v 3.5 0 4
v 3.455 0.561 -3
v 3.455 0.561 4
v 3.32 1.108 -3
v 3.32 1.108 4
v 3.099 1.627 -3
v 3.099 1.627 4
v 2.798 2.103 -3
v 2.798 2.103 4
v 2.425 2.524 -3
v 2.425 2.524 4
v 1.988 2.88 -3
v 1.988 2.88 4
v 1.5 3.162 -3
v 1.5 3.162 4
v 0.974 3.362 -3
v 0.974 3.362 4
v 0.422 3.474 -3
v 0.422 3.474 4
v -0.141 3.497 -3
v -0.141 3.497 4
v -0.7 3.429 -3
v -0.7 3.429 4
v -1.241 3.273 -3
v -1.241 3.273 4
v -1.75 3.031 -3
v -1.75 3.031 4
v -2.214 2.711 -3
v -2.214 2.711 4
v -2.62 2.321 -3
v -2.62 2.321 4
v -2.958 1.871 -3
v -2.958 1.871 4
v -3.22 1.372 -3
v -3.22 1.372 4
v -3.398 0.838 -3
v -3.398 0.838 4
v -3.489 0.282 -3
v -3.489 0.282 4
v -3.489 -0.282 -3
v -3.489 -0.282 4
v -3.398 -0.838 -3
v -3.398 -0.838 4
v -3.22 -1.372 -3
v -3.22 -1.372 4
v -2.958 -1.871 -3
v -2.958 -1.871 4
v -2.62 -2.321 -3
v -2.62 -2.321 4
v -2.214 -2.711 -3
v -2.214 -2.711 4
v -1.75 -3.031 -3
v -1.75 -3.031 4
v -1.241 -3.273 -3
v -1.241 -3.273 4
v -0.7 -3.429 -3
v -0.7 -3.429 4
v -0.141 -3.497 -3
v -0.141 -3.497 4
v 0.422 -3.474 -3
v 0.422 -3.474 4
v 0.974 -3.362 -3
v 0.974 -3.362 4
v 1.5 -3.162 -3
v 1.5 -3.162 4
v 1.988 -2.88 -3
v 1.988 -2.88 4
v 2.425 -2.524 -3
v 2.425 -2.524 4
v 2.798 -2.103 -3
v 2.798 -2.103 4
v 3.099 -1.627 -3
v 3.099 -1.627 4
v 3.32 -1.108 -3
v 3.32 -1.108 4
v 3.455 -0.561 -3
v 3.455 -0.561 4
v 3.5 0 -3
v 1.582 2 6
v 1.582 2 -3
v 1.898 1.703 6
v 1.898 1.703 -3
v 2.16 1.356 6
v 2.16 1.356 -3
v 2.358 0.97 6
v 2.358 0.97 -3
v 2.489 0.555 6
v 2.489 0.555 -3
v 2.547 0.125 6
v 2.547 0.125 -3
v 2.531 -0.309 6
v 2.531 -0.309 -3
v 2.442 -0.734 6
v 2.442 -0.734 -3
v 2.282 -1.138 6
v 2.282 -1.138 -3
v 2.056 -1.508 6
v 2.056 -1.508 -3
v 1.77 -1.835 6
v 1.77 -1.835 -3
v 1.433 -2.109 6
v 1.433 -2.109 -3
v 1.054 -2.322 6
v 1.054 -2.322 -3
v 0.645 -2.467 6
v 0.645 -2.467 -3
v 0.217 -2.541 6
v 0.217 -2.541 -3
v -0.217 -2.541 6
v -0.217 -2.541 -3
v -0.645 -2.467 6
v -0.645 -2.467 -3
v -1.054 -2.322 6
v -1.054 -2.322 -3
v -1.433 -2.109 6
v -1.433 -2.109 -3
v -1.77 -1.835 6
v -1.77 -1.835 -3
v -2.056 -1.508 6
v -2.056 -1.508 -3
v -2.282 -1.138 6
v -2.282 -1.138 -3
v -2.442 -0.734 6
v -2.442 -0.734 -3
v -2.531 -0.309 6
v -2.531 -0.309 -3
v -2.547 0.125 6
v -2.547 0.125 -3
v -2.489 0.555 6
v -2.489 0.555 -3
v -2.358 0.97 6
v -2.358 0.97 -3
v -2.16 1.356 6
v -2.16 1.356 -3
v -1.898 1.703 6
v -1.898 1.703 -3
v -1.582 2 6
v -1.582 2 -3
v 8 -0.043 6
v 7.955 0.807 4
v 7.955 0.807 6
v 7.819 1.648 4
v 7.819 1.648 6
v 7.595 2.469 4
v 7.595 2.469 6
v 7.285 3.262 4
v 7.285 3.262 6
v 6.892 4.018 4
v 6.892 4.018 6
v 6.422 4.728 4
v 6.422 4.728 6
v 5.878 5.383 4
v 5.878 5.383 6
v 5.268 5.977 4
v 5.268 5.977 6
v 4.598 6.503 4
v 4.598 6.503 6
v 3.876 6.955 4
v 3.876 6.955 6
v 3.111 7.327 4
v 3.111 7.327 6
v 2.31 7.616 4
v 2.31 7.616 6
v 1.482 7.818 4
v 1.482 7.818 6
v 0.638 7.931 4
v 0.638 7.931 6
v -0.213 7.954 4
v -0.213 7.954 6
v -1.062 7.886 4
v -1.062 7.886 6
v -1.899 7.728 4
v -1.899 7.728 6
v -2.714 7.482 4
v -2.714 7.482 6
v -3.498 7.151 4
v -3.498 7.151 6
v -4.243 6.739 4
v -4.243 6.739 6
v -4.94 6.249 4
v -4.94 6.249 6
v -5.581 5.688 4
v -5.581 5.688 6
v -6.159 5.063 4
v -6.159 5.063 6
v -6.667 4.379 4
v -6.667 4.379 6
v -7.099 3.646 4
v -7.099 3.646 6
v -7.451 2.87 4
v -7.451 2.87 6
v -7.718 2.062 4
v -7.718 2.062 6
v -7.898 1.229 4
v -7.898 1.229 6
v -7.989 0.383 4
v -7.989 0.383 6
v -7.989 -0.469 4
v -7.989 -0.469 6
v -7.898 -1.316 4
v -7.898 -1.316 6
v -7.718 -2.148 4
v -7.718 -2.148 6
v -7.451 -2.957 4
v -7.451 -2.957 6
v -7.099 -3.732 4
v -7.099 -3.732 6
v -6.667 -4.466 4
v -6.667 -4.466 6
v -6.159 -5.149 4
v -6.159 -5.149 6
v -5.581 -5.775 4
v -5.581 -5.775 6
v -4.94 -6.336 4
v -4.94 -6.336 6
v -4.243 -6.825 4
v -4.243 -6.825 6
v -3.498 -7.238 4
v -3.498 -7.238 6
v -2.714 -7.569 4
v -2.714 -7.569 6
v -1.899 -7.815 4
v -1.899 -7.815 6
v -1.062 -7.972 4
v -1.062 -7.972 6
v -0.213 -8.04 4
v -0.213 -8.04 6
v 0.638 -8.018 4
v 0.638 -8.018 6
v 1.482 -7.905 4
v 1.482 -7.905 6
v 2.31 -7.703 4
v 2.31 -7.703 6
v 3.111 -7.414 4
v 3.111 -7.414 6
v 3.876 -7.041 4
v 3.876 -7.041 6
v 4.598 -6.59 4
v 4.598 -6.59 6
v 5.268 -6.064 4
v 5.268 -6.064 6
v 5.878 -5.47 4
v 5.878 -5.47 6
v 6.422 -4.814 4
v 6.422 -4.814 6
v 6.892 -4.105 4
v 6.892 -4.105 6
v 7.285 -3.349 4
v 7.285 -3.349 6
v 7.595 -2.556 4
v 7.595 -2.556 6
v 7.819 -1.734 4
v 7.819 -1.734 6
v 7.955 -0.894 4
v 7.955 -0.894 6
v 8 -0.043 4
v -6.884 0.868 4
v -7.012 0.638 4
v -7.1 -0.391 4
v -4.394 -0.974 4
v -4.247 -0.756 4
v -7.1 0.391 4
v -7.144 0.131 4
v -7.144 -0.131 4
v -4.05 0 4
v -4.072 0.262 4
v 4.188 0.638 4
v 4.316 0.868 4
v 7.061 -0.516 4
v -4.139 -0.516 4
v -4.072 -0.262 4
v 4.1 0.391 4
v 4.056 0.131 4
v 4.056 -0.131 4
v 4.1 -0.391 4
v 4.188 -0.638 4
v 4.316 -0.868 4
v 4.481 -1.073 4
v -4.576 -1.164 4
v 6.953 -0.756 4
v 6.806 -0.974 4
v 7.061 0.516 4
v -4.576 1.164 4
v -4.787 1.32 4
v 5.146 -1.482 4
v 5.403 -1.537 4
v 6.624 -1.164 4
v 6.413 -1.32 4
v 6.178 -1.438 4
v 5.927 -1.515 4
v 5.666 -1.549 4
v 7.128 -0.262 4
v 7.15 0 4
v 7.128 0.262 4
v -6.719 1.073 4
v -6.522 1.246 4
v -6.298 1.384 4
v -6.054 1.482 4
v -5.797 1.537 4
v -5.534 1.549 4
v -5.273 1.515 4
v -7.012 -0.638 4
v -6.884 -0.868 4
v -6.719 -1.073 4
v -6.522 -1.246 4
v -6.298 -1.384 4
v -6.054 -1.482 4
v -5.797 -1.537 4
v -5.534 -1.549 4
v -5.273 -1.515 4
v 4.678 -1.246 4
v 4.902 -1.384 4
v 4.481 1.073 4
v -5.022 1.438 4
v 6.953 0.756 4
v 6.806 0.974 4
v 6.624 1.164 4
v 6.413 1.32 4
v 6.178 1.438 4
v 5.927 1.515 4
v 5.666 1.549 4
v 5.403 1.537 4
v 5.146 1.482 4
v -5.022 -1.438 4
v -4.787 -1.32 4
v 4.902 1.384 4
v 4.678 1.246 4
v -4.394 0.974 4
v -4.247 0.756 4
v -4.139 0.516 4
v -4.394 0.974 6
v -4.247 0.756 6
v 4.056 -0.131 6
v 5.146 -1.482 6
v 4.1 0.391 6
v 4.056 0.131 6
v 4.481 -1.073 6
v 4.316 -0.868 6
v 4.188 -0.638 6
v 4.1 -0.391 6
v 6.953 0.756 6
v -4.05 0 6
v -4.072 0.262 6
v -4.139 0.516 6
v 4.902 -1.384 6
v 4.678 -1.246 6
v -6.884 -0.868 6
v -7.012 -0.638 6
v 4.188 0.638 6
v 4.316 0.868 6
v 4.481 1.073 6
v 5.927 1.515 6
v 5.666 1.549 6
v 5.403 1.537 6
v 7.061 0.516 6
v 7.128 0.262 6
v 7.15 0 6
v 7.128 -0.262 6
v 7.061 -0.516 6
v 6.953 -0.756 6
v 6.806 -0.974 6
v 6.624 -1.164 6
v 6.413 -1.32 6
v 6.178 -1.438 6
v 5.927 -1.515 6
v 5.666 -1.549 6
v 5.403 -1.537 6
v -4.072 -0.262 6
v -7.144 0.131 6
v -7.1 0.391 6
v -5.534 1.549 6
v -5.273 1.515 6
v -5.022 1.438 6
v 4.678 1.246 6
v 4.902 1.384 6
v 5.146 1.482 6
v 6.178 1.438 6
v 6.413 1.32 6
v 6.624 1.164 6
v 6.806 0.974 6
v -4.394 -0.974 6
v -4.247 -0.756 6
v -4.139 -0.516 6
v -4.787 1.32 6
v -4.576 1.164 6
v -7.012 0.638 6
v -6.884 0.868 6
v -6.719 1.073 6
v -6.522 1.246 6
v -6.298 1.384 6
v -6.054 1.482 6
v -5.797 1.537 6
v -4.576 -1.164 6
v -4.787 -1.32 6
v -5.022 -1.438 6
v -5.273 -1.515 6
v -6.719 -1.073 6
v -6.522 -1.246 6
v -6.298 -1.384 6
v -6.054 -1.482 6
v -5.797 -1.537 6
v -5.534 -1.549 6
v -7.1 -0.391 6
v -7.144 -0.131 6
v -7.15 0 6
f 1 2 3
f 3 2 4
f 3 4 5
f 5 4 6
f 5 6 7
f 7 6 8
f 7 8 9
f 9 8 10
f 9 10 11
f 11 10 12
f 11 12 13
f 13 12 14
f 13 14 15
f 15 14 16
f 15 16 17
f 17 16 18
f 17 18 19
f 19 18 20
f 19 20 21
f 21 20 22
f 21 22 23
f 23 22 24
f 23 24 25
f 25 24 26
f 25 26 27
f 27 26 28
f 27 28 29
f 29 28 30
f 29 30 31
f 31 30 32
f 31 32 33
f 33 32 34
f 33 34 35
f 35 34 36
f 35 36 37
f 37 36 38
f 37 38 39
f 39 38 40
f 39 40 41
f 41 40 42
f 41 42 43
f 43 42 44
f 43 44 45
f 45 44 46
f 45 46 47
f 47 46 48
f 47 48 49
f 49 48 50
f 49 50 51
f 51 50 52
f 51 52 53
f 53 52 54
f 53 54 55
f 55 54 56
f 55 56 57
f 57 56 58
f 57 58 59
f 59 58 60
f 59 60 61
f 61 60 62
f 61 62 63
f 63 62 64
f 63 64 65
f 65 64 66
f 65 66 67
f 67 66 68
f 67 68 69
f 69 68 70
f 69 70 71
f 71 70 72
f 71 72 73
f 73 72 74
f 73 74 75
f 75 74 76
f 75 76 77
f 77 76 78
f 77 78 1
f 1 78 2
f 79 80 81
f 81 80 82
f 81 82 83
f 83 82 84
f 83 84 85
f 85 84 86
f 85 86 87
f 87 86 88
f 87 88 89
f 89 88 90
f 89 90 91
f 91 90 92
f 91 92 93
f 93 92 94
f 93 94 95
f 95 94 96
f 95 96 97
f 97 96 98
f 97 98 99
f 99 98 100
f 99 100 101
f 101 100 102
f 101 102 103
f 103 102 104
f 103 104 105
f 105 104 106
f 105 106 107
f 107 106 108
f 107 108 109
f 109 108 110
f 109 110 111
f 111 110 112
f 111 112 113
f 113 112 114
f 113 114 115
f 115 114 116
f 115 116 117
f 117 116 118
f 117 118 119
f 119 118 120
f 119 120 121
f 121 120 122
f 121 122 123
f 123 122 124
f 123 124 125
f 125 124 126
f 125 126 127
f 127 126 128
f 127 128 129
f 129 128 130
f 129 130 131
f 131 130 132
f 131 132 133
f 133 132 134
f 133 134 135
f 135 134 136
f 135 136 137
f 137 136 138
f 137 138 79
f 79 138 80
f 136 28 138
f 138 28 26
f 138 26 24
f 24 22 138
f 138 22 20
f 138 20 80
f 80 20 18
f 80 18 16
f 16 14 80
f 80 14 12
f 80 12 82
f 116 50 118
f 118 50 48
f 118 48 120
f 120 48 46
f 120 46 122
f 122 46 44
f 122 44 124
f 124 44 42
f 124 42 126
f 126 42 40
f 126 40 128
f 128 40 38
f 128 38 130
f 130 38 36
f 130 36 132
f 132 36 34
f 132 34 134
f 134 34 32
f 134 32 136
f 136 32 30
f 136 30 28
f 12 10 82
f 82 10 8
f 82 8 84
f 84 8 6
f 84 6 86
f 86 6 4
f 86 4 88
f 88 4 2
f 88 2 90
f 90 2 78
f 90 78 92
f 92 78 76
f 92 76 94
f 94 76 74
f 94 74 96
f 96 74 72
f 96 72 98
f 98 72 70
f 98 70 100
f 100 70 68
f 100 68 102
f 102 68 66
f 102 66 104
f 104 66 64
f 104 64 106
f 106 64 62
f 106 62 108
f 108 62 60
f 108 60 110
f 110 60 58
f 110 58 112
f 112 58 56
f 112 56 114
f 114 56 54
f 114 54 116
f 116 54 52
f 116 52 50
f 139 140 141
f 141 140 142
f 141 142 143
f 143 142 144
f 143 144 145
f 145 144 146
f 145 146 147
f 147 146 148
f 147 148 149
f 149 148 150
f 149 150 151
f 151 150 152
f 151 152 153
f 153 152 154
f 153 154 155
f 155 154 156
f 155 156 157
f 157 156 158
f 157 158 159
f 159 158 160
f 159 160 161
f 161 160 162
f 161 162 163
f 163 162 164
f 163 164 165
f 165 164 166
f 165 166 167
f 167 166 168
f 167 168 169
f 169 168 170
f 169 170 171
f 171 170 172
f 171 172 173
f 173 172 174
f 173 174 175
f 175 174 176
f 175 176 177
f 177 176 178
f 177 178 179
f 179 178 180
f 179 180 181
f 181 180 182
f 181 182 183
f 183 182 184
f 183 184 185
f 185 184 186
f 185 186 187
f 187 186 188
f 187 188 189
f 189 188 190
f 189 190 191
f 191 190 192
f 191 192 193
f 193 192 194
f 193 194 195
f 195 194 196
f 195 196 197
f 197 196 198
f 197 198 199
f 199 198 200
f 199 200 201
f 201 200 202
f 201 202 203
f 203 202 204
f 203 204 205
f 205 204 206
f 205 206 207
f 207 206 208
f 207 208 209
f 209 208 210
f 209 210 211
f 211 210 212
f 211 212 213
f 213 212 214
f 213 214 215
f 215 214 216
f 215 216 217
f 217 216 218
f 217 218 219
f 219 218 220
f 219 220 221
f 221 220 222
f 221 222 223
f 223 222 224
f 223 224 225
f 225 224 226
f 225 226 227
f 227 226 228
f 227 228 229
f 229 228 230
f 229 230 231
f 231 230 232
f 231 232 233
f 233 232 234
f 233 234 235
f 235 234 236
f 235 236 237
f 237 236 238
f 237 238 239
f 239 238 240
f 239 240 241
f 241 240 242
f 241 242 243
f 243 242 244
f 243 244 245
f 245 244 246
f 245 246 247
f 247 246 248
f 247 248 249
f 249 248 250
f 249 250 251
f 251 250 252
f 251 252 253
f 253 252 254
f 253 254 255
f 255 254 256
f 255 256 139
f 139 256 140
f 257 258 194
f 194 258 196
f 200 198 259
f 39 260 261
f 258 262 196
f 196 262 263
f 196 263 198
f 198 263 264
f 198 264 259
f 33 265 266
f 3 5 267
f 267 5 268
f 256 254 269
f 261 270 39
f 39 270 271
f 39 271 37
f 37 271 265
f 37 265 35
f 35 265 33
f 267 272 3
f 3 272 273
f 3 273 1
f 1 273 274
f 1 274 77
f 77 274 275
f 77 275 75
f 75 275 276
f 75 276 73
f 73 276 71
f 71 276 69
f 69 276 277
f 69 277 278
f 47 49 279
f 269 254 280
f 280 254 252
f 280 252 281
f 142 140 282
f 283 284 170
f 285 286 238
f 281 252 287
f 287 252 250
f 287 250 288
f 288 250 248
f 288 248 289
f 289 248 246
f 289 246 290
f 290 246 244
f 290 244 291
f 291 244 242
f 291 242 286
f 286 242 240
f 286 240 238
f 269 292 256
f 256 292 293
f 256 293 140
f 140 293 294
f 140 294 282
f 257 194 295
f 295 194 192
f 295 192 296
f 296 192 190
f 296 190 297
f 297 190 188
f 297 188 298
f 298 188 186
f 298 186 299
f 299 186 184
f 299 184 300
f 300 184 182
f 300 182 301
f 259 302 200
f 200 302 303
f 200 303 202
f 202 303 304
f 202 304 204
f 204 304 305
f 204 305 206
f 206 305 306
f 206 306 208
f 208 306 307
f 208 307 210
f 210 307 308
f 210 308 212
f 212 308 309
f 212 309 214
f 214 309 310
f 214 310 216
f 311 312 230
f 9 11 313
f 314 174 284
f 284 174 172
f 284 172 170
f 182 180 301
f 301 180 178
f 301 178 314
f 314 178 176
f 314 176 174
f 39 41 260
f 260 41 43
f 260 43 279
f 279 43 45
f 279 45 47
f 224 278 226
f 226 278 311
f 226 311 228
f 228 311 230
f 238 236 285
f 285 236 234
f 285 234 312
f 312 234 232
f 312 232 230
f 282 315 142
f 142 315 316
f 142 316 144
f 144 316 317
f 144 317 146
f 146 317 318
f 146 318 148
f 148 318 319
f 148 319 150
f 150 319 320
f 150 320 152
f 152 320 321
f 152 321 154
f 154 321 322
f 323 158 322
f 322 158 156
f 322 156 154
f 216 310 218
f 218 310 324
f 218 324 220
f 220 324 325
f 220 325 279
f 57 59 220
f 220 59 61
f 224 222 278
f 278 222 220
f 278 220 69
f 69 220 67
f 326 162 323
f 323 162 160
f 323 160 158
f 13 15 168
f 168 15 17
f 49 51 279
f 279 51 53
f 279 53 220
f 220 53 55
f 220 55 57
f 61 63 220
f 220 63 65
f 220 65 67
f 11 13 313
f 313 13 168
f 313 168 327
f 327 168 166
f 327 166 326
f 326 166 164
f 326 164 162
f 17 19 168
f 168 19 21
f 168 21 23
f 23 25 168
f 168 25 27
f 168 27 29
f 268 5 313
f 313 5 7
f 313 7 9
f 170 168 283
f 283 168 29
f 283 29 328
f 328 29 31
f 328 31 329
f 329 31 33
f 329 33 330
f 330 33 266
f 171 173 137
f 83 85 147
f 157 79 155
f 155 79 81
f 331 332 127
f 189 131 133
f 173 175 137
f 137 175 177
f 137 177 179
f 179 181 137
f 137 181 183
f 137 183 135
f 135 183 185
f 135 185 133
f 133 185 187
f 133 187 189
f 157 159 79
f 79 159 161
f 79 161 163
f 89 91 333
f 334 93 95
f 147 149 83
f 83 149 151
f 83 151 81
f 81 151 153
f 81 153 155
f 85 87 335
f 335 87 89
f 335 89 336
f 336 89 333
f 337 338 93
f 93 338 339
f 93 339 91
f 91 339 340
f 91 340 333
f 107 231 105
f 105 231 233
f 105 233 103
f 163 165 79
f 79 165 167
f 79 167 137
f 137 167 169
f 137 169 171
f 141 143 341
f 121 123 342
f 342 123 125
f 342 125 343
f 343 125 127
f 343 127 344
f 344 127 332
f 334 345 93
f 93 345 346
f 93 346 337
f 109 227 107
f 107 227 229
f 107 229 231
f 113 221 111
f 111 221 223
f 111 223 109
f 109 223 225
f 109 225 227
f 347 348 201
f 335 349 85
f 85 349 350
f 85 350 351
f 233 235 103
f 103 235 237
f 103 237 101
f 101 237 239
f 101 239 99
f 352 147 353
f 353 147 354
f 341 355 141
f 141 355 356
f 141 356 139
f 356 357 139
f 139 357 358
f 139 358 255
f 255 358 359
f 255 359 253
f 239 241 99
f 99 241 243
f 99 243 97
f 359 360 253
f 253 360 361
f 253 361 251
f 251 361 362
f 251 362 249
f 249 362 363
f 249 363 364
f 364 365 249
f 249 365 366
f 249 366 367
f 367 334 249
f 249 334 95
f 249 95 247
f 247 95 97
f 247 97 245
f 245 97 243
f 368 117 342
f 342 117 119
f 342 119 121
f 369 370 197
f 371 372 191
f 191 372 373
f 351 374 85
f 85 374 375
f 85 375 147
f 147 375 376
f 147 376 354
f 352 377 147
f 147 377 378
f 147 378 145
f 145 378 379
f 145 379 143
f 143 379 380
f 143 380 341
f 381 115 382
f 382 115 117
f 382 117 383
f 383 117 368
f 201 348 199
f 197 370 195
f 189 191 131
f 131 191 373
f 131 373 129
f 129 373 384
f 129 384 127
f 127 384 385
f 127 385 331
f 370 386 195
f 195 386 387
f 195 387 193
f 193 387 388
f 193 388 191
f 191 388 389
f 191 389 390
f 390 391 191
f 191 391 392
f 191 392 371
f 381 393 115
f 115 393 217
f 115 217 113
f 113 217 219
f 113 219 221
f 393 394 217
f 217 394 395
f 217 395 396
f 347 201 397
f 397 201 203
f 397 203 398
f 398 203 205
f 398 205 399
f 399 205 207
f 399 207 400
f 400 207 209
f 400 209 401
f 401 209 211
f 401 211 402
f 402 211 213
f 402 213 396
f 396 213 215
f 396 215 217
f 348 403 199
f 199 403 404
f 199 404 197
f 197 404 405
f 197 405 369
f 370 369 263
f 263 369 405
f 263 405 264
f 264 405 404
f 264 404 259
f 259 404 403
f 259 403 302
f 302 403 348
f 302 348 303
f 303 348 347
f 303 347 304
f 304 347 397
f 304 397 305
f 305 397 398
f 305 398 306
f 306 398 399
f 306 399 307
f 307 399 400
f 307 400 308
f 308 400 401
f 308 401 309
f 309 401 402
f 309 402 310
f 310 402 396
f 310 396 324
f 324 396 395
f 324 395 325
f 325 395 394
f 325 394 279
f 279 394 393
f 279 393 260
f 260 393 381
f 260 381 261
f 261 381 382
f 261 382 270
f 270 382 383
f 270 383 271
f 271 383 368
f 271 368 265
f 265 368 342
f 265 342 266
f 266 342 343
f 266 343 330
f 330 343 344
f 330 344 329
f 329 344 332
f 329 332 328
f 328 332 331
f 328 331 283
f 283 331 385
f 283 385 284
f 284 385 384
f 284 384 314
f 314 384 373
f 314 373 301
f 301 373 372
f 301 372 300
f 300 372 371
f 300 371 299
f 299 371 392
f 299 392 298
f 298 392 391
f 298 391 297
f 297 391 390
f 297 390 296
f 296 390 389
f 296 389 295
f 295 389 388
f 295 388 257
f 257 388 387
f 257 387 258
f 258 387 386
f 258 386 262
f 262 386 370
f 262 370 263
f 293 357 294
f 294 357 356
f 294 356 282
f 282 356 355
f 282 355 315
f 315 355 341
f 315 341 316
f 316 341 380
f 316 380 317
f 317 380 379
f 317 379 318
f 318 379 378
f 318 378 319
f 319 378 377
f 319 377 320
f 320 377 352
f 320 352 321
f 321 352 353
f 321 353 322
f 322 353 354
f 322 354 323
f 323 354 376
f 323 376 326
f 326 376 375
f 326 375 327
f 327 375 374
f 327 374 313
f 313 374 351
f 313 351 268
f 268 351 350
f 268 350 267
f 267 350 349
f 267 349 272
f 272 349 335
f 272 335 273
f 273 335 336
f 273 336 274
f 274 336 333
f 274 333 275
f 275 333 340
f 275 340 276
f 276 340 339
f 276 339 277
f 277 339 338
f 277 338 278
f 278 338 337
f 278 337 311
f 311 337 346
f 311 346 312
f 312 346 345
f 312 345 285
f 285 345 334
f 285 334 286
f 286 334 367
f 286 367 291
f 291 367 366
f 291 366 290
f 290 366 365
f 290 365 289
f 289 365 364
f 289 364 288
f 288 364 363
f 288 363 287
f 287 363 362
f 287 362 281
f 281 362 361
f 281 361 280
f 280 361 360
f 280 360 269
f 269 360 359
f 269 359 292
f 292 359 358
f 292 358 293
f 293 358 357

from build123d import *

# Parameters (mm, degrees)
EXTRUDE_1_DEPTH          = 6
EXTRUDE_1_DEPTH_BACK     = 3
SKETCH_1_R               = 3.5
CUT_EXTRUDE_1_DEPTH      = 11.271319292
CUT_EXTRUDE_1_DEPTH_BACK = 11.271319292
SKETCH_3_R               = 8
EXTRUDE_2_DEPTH          = 2
CUT_EXTRUDE_2_DEPTH      = 15.480802494
SKETCH_5_R               = 1.55
CUT_EXTRUDE_3_DEPTH      = 2.5


with BuildPart() as part:
    # 草图1 → 凸台-拉伸1 (new, two sides: drawn at the far end of the back side and taken through both)
    with BuildSketch(Plane.XY.offset(-EXTRUDE_1_DEPTH_BACK)):
        Circle(SKETCH_1_R)
    extrude(amount=EXTRUDE_1_DEPTH + EXTRUDE_1_DEPTH_BACK)

    # 草图2 → 切除-拉伸1 (cut, two sides: drawn at the far end of the back side and taken through both)
    with BuildSketch(Plane(origin=(0, 0, -3), x_dir=(-1, 0, 0), z_dir=(0, 0, -1)).offset(-CUT_EXTRUDE_1_DEPTH_BACK)):
        with BuildLine():
            Line((1.581929202, 2), (-1.581929202, 2))
            ThreePointArc((-1.581929202, 2), (0, -2.55), (1.581929202, 2))
        make_face()
    extrude(amount=CUT_EXTRUDE_1_DEPTH + CUT_EXTRUDE_1_DEPTH_BACK, mode=Mode.SUBTRACT)

    # 草图3 → 凸台-拉伸2 (add)
    with BuildSketch(Plane.XY.offset(6)):
        with Locations((0, -0.043235721)):
            Circle(SKETCH_3_R)
    extrude(amount=-EXTRUDE_2_DEPTH)

    # 草图4 → 切除-拉伸2 (cut, through all)
    with BuildSketch(Plane.XY.offset(6)):
        with BuildLine():
            Line((-1.581929202, 2), (1.581929202, 2))
            ThreePointArc((1.581929202, 2), (0, -2.55), (-1.581929202, 2))
        make_face()
    extrude(amount=-CUT_EXTRUDE_2_DEPTH, mode=Mode.SUBTRACT)

    # 草图5 → 切除-拉伸3 (cut)
    with BuildSketch(Plane.XY.offset(6)):
        with Locations((5.6, 0)):
            Circle(SKETCH_5_R)
        with Locations((-5.6, 0)):
            Circle(SKETCH_5_R)
    extrude(amount=-CUT_EXTRUDE_3_DEPTH, mode=Mode.SUBTRACT)


solid = part.part
